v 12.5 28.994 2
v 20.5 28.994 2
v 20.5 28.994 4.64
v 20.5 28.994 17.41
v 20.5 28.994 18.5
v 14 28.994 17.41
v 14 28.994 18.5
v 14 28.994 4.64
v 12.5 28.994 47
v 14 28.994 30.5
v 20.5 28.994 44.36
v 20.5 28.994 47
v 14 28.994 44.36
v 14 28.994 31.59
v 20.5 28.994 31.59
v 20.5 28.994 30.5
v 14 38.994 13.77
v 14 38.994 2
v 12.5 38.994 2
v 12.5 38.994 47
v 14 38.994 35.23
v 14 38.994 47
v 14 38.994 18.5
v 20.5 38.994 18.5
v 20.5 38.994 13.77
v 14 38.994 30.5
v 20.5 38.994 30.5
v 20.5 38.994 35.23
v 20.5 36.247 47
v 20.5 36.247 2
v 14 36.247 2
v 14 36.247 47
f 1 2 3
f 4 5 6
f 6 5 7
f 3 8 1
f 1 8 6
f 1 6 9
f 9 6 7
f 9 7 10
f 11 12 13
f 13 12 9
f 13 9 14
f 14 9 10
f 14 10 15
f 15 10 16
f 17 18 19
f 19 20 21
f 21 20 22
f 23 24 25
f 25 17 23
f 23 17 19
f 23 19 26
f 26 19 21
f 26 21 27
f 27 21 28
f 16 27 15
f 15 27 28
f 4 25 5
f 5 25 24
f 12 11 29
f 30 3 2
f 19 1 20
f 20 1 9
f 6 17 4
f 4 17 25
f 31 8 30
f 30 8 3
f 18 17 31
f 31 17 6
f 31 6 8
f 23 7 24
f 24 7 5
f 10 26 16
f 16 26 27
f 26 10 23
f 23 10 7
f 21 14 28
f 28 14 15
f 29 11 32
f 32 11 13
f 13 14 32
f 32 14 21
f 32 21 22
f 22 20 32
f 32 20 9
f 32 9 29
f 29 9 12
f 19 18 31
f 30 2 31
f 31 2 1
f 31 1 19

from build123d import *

# Parameters (mm, degrees)
SALIENTE_EXTRUIR1_DEPTH = 49
CORTAR_EXTRUIR1_DEPTH   = 70.738798384
SALIENTE_EXTRUIR3_DEPTH = 10
CROQUIS8_W              = 12
CROQUIS8_H              = 10
CORTAR_EXTRUIR2_DEPTH   = 6.5
CROQUIS9_W              = 20
CROQUIS9_H              = 12
SALIENTE_EXTRUIR4_DEPTH = 1.5
CROQUIS10_W             = 49
CROQUIS10_H             = 45
CORTAR_EXTRUIR6_DEPTH   = 16
CROQUIS13_W             = 2
CROQUIS13_H             = 10
CORTAR_EXTRUIR7_DEPTH   = 64.131209746


with BuildPart() as part:
    # Croquis1 → Saliente-Extruir1 (new body)
    with BuildSketch(Plane.XY):
        Polygon((-3.5, 49.5), (-3.5, 0), (0, 0), (0, 41.994225778), align=None)
    extrude(amount=SALIENTE_EXTRUIR1_DEPTH)

    # Croquis2 → Cortar-Extruir1 (cut, through all)
    with BuildSketch(Plane(origin=(0, 0, 0), x_dir=(0, 0, -1), z_dir=(1, 0, 0))):
        Polygon((-49, 0), (0, 0), (0, 28.994225778), (-14.5, 28.994225778), (-14.5, 4.5), (-34.5, 4.5), (-34.5, 28.994225778), (-49, 28.994225778), align=None)
    extrude(amount=-CORTAR_EXTRUIR1_DEPTH, mode=Mode.SUBTRACT)

    # Croquis4 → Saliente-Extruir3 (add)
    with BuildSketch(Plane.XZ.offset(-28.994225778)):
        Polygon((0, 49), (20.5, 49), (20.5, 0), (0, 0), (0, 1.5), (12.5, 1.5), (12.5, 47.5), (0, 47.5), align=None)
    extrude(amount=-SALIENTE_EXTRUIR3_DEPTH)

    # Croquis8 → Cortar-Extruir2 (cut)
    with BuildSketch(Plane(origin=(20.5, 0, 0), x_dir=(0, 0, -1), z_dir=(1, 0, 0))):
        with Locations((-24.5, 33.994225778)):
            Rectangle(CROQUIS8_W, CROQUIS8_H)
        Polygon((-48, 38.994225778), (-44.360297657, 28.994225778), (-31.590164388, 28.994225778), (-35.22986673, 38.994225778), align=None)
        Polygon((-17.409835612, 28.994225778), (-4.639702343, 28.994225778), (-1, 38.994225778), (-13.77013327, 38.994225778), align=None)
    extrude(amount=-CORTAR_EXTRUIR2_DEPTH, mode=Mode.SUBTRACT)

    # Croquis9 → Saliente-Extruir4 (add)
    with BuildSketch(Plane(origin=(0, 0, 0), x_dir=(0, 0, -1), z_dir=(1, 0, 0))):
        with Locations((-24.5, 10.5)):
            Rectangle(CROQUIS9_W, CROQUIS9_H)
    extrude(amount=SALIENTE_EXTRUIR4_DEPTH)

    # Croquis10 → Cortar-Extruir6 (cut)
    with BuildSketch(Plane.ZY.offset(3.5)):
        with Locations((24.5, 27)):
            Rectangle(CROQUIS10_W, CROQUIS10_H)
    extrude(amount=-CORTAR_EXTRUIR6_DEPTH, mode=Mode.SUBTRACT)

    # Croquis13 → Cortar-Extruir7 (cut, through all)
    with BuildSketch(Plane(origin=(20.5, 0, 0), x_dir=(0, 0, -1), z_dir=(1, 0, 0))):
        with Locations((-48, 33.994225778)):
            Rectangle(CROQUIS13_W, CROQUIS13_H)
        with Locations((-1, 33.994225778)):
            Rectangle(CROQUIS13_W, CROQUIS13_H)
    extrude(amount=-CORTAR_EXTRUIR7_DEPTH, mode=Mode.SUBTRACT)


solid = part.part
